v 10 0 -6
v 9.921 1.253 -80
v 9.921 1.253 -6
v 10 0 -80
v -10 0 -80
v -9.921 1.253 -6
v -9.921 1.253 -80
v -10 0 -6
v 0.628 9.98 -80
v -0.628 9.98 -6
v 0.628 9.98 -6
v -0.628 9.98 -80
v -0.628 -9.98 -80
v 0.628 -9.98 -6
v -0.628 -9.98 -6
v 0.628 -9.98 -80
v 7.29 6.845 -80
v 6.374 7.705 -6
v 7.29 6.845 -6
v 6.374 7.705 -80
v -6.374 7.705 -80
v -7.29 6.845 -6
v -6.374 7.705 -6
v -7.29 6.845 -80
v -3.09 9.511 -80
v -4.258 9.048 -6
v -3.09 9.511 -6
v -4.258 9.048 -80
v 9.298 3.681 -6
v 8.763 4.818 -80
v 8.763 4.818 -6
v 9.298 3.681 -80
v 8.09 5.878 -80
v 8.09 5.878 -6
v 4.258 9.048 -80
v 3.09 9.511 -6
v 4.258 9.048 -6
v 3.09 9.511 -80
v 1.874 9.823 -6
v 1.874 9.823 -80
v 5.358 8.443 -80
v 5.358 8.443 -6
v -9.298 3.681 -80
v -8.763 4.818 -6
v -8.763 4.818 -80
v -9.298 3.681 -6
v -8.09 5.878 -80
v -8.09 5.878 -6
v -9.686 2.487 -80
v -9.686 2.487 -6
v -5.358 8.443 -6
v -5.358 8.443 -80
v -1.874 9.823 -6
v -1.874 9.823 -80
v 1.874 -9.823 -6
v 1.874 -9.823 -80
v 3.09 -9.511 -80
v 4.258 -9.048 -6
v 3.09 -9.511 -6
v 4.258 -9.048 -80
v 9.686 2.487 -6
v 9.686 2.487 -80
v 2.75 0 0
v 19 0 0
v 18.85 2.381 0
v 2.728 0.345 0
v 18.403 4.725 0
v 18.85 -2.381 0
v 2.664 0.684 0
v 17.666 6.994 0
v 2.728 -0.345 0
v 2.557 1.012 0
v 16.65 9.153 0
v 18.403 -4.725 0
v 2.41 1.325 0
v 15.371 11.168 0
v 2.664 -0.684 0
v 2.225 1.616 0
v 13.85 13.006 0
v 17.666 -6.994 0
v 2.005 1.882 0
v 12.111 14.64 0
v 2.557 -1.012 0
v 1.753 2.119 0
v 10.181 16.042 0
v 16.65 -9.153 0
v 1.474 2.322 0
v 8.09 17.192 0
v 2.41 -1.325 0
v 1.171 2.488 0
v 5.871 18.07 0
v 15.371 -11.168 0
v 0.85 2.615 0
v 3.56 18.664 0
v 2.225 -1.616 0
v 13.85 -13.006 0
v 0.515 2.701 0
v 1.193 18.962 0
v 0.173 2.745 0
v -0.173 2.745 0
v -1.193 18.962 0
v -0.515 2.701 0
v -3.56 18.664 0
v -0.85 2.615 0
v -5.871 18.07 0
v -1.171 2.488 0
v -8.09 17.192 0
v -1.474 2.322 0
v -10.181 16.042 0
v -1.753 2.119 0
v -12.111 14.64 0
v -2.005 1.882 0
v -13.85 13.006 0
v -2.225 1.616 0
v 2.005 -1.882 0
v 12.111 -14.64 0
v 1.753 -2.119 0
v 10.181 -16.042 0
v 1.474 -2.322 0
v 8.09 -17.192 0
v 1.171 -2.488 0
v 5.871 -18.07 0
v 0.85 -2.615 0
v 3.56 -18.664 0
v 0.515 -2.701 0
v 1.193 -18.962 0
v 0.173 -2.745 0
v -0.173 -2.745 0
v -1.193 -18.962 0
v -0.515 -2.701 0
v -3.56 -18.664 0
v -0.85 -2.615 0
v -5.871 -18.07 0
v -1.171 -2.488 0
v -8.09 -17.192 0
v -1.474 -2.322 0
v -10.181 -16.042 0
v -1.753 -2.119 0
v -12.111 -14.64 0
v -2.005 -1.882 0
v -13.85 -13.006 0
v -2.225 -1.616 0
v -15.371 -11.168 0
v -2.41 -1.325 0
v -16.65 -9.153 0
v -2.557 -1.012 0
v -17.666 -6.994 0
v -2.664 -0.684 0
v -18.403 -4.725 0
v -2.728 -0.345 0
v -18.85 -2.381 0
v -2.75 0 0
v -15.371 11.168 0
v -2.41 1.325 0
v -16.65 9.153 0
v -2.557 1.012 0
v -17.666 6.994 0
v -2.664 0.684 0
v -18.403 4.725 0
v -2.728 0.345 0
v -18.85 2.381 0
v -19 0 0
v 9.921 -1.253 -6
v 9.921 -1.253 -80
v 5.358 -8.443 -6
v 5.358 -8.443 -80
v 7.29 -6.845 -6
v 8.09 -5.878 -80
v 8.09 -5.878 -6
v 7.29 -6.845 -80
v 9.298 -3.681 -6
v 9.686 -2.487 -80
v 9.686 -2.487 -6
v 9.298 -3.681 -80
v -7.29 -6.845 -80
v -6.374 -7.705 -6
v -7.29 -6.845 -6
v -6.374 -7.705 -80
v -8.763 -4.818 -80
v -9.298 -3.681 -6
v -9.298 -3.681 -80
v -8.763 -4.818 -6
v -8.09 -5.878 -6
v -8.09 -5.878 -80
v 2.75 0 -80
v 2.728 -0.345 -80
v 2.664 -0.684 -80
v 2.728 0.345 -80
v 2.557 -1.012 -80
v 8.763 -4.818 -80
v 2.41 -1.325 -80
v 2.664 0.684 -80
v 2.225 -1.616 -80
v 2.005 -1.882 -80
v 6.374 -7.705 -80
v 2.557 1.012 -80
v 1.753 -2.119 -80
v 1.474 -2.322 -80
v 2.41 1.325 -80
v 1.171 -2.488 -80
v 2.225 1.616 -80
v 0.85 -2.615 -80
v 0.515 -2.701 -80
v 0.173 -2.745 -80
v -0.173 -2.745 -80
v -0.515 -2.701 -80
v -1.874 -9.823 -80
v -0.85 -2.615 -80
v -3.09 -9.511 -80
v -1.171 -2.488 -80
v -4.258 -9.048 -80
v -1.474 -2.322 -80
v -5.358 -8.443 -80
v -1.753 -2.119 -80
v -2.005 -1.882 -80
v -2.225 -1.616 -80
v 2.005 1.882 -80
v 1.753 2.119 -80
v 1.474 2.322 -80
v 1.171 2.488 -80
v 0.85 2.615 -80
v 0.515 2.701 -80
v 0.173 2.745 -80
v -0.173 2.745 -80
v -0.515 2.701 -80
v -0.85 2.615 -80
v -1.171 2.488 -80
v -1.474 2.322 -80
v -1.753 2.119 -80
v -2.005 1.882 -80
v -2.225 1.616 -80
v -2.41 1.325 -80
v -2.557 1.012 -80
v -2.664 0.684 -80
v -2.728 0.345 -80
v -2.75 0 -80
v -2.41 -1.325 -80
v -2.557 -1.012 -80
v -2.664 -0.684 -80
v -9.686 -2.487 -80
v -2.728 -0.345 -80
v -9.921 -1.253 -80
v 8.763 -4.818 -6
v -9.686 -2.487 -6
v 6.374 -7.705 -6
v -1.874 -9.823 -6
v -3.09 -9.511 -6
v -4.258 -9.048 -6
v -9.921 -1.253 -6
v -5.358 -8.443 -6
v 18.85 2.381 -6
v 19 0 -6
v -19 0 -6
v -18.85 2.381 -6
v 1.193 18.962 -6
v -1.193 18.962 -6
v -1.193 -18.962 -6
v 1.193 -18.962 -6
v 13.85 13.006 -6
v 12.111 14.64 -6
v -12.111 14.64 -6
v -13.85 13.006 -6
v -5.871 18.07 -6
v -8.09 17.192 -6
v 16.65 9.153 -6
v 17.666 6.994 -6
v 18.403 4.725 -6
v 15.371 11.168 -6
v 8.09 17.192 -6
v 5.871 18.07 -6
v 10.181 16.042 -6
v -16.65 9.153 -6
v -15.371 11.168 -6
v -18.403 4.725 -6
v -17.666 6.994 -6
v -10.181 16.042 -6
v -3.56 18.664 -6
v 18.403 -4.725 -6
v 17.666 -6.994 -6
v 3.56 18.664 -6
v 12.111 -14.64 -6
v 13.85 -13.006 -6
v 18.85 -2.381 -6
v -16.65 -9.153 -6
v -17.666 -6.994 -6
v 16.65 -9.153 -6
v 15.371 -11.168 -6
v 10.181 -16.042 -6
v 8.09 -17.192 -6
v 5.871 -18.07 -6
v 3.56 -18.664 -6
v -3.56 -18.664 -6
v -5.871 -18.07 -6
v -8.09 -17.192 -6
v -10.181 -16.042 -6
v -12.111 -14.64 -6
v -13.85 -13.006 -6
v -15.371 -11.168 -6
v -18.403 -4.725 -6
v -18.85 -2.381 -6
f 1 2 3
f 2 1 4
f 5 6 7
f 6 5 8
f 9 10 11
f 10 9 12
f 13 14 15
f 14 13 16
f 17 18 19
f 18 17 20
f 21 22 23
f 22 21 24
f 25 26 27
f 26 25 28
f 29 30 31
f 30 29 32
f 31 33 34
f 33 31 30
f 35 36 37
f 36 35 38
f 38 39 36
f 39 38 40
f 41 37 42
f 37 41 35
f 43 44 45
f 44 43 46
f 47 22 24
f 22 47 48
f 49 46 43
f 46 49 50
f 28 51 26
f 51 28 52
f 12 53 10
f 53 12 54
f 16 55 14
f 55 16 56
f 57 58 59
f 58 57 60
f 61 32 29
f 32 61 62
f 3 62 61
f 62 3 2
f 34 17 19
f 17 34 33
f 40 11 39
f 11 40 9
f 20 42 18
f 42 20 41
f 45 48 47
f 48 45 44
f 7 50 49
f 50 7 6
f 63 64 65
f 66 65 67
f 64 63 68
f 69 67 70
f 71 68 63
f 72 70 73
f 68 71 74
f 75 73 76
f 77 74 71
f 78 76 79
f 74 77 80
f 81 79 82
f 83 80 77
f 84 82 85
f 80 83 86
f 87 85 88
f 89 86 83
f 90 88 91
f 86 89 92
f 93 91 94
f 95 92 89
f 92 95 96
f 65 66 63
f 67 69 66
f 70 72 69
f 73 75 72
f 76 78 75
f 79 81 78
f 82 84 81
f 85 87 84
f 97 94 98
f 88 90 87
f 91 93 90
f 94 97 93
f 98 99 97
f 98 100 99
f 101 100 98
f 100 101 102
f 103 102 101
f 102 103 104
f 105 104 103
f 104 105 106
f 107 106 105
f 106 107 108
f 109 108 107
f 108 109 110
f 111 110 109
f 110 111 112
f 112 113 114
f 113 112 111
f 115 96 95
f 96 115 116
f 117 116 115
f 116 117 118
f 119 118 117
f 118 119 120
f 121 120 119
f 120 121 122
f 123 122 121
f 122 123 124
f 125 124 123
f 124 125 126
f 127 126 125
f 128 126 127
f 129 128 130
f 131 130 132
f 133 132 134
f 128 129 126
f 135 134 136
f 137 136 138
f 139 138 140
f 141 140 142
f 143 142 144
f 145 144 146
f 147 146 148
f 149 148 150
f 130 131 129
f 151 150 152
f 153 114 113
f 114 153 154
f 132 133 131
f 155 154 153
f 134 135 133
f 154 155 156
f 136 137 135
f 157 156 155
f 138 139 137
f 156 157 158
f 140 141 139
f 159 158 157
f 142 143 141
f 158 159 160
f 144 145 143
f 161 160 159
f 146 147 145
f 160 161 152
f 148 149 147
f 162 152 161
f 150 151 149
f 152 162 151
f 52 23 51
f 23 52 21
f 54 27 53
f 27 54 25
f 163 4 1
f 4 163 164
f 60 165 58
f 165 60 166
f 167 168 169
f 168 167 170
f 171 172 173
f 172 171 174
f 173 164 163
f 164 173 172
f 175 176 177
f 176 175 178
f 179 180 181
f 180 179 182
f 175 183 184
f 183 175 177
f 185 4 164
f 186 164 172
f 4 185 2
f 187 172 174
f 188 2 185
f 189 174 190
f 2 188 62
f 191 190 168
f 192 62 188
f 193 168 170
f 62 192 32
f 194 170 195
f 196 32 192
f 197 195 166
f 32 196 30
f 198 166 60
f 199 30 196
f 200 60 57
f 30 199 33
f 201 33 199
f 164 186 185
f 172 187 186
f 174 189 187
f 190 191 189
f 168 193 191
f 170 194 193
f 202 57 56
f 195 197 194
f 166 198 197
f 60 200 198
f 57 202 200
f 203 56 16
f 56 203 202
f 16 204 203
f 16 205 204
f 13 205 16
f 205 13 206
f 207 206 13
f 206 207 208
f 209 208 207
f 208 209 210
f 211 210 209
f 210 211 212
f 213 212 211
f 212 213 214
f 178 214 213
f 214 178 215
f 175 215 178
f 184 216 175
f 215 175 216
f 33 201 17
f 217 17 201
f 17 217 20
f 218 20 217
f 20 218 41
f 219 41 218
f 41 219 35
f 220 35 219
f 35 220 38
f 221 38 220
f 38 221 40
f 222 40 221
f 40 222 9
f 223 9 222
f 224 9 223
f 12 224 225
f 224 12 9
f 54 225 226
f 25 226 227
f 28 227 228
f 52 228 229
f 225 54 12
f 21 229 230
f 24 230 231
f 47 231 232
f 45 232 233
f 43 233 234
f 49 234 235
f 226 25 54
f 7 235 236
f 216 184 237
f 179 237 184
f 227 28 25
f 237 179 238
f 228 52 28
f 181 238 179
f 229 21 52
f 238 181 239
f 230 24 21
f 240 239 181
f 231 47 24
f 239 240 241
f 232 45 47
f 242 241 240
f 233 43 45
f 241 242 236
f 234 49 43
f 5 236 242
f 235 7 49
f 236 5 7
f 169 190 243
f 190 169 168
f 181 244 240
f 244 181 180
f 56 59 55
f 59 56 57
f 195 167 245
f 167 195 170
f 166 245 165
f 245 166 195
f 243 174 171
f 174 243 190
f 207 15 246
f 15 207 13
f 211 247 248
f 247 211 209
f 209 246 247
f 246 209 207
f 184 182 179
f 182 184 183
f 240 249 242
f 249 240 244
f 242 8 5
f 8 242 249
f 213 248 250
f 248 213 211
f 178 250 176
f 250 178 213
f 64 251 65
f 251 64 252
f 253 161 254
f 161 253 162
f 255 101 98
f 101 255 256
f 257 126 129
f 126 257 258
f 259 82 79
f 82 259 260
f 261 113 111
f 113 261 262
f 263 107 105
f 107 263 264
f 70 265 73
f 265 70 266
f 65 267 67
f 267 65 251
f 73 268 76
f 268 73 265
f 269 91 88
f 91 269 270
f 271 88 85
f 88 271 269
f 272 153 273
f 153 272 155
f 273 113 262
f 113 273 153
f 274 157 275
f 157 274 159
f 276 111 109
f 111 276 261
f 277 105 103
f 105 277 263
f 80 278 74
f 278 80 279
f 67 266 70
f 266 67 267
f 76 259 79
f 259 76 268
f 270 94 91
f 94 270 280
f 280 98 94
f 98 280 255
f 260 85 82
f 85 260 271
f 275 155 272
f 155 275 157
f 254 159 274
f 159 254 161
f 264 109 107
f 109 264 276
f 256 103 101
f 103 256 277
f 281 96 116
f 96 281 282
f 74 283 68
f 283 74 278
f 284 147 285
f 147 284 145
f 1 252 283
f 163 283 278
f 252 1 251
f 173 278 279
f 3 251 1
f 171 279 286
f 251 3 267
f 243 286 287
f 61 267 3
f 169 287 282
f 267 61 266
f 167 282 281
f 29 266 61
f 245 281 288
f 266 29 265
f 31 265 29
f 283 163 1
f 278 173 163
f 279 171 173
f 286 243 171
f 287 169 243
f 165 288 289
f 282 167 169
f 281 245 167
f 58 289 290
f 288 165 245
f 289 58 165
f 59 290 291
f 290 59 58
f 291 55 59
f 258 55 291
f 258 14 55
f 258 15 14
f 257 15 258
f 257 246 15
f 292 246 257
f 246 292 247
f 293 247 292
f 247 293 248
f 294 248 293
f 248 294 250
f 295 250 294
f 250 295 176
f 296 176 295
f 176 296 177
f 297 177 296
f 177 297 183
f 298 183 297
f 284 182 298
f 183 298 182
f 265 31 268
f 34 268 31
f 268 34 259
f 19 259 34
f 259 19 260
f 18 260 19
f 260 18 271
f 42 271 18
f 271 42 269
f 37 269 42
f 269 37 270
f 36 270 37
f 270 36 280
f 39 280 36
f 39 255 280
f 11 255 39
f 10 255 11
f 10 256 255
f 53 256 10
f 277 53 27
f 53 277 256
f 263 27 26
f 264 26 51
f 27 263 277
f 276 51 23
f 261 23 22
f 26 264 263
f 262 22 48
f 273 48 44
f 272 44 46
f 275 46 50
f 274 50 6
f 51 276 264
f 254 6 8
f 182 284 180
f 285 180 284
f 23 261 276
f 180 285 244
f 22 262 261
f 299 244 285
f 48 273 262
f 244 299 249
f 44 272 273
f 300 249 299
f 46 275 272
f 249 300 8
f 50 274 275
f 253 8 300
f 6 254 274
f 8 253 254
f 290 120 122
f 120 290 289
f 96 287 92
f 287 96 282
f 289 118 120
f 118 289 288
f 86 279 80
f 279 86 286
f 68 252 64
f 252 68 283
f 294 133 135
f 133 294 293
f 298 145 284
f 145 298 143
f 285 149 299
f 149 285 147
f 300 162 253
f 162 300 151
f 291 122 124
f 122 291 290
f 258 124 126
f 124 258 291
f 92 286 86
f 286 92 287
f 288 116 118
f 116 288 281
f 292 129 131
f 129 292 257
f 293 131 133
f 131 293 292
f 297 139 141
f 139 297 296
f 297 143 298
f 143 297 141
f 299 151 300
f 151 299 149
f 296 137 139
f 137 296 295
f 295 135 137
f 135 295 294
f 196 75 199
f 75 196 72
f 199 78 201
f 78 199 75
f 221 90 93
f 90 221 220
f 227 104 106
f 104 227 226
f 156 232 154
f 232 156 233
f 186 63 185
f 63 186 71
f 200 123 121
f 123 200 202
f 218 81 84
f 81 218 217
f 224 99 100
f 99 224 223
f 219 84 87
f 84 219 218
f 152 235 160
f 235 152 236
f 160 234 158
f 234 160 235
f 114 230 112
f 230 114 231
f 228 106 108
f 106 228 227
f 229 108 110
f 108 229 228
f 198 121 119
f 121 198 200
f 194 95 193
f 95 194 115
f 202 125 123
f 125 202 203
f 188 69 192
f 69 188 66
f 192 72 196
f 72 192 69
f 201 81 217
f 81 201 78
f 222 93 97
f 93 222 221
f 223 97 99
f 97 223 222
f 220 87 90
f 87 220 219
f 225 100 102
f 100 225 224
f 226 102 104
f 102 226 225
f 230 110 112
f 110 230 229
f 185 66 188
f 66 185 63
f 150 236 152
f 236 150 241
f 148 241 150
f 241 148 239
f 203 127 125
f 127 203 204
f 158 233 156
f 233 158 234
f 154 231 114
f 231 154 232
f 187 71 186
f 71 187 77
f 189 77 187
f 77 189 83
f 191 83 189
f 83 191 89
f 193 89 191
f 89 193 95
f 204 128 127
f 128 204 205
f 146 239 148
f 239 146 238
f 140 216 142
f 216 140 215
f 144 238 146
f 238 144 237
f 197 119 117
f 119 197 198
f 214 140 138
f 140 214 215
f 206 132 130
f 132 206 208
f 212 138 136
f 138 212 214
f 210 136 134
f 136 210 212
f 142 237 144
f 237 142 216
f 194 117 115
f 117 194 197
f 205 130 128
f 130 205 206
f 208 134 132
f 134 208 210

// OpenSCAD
$fn = 50;


difference() {
	union() {
		translate(v = [0, 0, -80.0000000000]) {
			cylinder(h = 80, r = 10.0000000000);
		}
		translate(v = [0, 0, -6.0000000000]) {
			cylinder(h = 6, r = 19.0000000000);
		}
	}
	union() {
		#translate(v = [0, 0, -80]) {
			cylinder(h = 80, r = 2.7500000000);
		}
	}
}
